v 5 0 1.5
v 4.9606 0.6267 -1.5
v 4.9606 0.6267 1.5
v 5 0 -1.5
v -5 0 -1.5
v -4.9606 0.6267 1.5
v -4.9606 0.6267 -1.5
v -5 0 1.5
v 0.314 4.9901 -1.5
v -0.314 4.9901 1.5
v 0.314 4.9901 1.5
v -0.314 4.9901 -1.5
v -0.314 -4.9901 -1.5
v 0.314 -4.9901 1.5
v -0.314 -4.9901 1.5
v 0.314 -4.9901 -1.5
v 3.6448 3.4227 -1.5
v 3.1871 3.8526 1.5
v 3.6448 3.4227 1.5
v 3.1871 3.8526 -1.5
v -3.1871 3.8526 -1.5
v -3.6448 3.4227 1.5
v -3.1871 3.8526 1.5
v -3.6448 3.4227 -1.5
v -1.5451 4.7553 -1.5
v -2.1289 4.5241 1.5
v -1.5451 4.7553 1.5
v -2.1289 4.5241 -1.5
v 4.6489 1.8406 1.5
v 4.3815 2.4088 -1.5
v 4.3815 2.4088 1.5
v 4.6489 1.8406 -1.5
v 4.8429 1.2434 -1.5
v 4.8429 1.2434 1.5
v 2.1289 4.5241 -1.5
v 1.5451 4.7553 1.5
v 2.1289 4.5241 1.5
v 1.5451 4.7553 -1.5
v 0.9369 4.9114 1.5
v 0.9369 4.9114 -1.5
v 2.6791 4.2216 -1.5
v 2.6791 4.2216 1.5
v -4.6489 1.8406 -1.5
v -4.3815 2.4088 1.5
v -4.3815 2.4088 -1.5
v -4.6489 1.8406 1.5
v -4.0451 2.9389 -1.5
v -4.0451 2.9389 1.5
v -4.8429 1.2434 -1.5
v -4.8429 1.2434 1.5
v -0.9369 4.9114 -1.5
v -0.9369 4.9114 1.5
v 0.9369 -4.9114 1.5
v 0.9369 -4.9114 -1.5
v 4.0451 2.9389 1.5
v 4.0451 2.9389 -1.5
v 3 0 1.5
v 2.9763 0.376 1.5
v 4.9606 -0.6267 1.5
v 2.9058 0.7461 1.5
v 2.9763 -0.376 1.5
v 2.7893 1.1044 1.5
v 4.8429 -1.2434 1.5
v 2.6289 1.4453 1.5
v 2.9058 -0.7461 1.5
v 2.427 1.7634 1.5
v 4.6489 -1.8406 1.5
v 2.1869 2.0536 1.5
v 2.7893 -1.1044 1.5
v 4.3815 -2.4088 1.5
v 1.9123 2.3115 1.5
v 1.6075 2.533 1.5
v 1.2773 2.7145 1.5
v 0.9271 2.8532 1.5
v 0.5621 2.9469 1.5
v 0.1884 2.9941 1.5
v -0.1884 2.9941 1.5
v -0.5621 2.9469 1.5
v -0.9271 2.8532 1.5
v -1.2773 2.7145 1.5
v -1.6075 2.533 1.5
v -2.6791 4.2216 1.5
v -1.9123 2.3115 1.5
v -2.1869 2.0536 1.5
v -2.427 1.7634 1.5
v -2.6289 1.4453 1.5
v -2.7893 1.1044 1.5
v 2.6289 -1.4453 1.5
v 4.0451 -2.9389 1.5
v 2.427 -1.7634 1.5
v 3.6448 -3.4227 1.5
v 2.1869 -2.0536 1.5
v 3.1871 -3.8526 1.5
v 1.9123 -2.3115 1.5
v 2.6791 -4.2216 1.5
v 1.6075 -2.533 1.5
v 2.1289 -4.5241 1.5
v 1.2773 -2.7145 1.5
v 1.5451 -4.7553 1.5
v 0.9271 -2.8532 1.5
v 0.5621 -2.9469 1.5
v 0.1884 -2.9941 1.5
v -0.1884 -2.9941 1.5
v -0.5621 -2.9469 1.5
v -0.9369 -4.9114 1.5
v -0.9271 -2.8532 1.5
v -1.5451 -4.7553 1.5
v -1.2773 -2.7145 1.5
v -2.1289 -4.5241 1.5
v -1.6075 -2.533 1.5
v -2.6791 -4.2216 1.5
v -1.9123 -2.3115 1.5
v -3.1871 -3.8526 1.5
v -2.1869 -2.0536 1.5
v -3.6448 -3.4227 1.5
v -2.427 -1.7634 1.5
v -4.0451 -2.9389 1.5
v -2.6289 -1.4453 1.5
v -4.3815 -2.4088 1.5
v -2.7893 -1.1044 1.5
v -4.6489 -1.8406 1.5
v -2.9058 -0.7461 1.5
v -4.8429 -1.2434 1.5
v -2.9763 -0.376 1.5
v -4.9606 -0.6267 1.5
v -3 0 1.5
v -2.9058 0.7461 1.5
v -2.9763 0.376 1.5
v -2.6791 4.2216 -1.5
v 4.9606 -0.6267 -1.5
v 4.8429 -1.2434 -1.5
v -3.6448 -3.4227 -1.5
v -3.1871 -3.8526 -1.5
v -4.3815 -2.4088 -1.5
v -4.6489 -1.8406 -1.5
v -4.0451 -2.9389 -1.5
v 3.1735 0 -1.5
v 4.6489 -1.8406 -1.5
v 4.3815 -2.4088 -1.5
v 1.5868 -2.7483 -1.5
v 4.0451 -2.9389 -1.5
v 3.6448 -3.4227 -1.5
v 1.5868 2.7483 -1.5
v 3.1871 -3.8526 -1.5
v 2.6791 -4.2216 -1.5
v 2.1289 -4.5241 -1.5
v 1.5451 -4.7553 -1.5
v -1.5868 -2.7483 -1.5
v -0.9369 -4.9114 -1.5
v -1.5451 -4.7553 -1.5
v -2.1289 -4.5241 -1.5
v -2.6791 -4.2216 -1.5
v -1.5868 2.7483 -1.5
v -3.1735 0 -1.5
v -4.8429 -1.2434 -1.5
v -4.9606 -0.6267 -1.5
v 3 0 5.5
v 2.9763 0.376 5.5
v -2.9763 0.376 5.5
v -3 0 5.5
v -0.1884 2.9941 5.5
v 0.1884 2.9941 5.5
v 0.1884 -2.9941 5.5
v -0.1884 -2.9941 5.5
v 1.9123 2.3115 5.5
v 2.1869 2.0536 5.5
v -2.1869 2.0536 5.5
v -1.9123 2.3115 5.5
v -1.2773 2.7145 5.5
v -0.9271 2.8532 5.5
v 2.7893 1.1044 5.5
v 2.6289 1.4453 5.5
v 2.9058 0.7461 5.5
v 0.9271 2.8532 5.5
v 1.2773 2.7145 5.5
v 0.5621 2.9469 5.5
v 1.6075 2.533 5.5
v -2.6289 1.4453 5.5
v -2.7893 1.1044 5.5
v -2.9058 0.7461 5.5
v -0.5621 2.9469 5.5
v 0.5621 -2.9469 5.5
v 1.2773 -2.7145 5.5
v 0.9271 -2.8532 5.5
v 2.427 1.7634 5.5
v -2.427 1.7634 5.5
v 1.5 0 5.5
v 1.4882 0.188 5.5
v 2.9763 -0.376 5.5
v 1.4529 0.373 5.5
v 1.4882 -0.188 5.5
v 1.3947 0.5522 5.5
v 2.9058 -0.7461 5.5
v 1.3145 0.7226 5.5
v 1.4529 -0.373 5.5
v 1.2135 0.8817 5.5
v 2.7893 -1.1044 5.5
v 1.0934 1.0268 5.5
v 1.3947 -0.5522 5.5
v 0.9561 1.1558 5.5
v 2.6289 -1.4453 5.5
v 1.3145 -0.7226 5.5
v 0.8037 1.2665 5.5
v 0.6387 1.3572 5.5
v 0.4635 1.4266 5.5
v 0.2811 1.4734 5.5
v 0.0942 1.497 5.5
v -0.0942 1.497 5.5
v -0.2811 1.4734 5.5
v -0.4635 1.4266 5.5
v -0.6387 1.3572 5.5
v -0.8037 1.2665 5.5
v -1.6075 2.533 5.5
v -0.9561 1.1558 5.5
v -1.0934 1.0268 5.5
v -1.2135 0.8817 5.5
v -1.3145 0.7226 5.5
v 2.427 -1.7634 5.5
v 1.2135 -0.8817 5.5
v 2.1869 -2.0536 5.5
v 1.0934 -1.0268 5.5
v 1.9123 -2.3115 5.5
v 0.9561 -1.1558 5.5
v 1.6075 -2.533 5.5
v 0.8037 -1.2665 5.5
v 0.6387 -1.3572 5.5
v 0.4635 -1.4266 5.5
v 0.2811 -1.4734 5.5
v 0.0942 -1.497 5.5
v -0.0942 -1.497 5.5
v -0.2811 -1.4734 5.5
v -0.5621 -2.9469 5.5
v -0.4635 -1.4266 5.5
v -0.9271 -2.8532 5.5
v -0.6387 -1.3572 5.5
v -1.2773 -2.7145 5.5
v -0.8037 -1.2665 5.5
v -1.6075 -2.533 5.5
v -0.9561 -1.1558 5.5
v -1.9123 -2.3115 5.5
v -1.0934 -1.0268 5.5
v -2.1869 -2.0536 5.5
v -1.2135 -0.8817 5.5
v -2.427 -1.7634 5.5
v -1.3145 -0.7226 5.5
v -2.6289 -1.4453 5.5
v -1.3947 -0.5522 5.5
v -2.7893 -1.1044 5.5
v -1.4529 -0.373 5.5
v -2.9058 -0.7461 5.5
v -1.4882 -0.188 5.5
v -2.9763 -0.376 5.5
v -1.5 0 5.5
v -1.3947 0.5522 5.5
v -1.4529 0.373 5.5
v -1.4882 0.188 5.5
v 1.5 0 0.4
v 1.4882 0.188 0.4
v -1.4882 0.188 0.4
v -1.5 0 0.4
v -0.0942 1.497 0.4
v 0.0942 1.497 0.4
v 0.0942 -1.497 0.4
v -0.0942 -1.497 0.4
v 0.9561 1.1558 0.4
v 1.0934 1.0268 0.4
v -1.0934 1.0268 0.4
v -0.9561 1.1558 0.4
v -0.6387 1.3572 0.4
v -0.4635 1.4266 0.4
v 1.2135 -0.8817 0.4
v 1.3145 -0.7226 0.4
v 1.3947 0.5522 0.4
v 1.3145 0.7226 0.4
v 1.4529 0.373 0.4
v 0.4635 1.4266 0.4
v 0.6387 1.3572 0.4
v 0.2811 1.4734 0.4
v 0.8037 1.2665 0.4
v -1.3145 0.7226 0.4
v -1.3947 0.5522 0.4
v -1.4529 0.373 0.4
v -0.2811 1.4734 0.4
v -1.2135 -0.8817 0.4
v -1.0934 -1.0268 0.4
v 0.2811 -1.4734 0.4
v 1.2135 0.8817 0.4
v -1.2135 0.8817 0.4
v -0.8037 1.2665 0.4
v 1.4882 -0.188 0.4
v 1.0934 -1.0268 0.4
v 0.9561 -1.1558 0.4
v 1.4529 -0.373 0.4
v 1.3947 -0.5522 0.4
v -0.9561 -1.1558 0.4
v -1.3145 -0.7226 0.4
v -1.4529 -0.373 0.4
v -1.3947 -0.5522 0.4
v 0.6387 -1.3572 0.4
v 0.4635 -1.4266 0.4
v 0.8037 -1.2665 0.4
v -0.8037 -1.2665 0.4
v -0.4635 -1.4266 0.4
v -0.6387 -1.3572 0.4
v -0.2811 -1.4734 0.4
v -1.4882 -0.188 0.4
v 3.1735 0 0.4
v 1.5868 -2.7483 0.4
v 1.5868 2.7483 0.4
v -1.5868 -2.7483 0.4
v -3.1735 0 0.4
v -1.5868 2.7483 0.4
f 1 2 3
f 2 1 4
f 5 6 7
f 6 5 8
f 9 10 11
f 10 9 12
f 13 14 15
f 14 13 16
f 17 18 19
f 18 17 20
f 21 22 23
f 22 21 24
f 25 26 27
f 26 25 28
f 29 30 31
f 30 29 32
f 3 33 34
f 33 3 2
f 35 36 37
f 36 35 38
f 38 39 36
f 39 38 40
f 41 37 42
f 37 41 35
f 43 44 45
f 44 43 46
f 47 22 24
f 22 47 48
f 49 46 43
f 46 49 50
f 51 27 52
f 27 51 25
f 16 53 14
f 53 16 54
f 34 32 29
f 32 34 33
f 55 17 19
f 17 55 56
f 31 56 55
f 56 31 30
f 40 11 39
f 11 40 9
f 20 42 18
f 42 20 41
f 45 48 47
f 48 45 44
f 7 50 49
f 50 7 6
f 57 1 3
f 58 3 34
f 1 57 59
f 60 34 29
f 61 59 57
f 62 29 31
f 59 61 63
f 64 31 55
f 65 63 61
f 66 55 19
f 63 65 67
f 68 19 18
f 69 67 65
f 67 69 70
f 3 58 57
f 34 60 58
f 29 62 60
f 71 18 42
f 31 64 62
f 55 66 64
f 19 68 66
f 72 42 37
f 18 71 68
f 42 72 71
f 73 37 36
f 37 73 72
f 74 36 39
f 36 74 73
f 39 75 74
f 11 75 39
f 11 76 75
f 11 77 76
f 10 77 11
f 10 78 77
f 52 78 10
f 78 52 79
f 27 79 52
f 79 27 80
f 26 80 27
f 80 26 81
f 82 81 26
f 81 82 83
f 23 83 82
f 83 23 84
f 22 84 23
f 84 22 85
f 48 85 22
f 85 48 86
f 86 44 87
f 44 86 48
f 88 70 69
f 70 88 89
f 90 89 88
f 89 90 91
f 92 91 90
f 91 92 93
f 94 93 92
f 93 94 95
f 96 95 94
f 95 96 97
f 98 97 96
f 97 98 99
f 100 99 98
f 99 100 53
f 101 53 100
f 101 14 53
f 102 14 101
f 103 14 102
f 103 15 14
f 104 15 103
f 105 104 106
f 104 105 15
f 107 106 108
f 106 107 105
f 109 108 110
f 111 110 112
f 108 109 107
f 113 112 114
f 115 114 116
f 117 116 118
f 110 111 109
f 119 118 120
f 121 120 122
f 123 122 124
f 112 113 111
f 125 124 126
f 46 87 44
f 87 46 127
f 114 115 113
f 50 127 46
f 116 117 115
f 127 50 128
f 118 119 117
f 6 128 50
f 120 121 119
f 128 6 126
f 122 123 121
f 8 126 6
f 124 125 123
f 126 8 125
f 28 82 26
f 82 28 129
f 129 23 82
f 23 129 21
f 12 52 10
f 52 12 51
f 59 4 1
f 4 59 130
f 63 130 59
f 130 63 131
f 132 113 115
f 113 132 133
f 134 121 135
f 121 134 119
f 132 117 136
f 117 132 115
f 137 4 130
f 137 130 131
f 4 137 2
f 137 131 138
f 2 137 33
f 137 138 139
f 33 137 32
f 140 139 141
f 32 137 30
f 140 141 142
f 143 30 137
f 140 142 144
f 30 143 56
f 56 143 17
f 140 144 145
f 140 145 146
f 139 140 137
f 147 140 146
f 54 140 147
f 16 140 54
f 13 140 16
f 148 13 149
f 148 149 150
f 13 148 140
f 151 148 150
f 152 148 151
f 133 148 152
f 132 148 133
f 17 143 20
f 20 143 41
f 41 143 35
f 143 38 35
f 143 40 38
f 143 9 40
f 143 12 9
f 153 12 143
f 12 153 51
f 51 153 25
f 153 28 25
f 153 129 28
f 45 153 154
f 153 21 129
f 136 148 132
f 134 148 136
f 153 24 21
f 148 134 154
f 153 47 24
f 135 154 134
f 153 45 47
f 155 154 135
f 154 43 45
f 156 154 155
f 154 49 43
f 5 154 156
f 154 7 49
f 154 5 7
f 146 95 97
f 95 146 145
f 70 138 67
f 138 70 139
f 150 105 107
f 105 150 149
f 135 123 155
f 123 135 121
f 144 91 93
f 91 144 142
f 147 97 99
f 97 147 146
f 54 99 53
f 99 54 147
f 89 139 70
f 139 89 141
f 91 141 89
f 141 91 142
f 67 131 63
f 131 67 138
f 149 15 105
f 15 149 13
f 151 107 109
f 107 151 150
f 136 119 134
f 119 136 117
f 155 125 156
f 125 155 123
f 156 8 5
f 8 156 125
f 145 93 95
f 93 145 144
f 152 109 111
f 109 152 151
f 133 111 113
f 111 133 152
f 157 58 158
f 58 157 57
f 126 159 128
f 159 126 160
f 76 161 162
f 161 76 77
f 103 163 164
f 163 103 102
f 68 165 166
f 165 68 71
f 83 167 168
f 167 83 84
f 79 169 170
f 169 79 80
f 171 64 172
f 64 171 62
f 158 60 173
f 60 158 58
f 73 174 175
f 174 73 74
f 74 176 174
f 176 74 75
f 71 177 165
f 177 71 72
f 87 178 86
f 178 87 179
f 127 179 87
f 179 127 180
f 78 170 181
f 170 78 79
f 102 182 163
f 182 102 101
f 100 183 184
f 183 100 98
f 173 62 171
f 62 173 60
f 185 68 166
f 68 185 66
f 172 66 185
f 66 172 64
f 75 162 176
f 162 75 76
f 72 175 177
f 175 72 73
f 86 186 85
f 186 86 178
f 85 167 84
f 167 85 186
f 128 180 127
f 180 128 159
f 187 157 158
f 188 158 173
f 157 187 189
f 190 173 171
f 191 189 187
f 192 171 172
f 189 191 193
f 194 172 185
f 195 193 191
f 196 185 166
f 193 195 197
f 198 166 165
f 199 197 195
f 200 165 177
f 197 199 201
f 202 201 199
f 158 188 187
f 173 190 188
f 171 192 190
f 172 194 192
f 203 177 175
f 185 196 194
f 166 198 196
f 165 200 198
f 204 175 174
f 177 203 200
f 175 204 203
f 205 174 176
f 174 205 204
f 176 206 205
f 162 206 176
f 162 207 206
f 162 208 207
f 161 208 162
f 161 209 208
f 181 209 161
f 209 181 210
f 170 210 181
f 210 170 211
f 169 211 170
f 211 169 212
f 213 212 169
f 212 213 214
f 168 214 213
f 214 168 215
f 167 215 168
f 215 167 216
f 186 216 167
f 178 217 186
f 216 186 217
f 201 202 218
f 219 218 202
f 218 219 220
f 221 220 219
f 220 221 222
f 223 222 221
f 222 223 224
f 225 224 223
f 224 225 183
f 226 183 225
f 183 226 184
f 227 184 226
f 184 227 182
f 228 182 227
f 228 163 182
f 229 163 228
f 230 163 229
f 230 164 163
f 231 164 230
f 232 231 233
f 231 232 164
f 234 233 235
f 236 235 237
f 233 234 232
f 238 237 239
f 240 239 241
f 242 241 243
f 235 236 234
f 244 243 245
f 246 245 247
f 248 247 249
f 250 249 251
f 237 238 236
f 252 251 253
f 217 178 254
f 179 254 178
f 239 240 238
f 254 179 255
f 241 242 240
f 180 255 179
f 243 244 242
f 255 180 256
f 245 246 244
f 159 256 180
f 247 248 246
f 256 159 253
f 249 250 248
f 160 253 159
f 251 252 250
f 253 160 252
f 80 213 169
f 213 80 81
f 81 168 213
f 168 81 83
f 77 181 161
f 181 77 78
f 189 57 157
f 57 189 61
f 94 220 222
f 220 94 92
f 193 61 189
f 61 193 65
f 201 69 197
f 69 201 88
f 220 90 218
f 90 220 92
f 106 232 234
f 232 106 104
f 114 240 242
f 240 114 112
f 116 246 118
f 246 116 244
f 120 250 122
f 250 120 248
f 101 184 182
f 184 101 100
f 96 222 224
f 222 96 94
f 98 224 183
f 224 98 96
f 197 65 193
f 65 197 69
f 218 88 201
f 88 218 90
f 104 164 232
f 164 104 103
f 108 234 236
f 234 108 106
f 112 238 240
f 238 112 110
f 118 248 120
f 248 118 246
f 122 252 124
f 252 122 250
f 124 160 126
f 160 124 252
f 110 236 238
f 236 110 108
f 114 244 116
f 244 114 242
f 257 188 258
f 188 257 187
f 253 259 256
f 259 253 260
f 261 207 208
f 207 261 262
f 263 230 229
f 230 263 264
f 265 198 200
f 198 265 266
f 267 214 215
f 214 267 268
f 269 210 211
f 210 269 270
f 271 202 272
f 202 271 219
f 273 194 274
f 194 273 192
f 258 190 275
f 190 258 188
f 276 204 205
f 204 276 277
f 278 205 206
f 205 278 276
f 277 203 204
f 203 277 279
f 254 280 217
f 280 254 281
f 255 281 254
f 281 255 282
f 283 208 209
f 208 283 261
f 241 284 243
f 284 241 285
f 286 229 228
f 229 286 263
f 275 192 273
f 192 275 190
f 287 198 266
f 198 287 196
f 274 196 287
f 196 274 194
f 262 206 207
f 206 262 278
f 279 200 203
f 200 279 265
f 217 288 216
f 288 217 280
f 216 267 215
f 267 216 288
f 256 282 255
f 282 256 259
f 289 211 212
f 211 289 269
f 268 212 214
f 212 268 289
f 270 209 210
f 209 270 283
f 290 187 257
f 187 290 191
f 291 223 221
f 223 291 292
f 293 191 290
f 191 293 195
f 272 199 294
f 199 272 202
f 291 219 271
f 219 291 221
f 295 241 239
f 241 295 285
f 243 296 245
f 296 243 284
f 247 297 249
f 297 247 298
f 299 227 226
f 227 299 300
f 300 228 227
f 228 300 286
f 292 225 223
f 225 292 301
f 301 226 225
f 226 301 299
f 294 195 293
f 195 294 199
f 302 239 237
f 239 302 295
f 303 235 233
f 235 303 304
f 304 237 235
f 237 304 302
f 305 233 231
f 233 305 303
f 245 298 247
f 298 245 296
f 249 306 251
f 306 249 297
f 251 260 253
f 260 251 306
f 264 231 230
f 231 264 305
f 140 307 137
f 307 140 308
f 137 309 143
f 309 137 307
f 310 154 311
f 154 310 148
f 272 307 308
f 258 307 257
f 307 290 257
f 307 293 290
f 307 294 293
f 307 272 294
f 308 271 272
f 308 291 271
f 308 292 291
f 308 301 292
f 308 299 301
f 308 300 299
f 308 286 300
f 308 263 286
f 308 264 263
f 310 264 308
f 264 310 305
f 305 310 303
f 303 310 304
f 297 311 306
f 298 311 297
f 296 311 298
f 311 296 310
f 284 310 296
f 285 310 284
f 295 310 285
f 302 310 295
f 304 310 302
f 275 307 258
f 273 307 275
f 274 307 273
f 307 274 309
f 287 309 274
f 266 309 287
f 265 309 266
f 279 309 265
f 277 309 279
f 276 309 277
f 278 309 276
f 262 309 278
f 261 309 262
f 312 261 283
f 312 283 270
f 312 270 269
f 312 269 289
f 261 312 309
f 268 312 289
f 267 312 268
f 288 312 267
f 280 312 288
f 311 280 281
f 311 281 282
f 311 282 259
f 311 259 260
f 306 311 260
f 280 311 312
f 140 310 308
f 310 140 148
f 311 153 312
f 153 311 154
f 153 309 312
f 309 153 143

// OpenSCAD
$fn = 50;


difference() {
	union() {
		translate(v = [0, 0, -1.5000000000]) {
			rotate(a = [0, 0, 0]) {
				cylinder(h = 3, r = 5.0000000000);
			}
		}
		translate(v = [0, 0, -1.5000000000]) {
			rotate(a = [0, 0, 0]) {
				cylinder(h = 7, r = 3.0000000000);
			}
		}
	}
	union() {
		translate(v = [0, 0, -125.0000000000]) {
			rotate(a = [0, 0, 0]) {
				cylinder(h = 250, r = 1.5000000000);
			}
		}
		translate(v = [0, 0, -2.1000000000]) {
			rotate(a = [0, 0, 0]) {
				#translate(v = [0, 0, 0]) {
					rotate(a = [0, 0, 0]) {
						linear_extrude(height = 2.5000000000) {
							polygon(points = [[3.1735000000, 0.0000000000], [1.5867500000, 2.7483316189], [-1.5867500000, 2.7483316189], [-3.1735000000, 0.0000000000], [-1.5867500000, -2.7483316189], [1.5867500000, -2.7483316189]]);
						}
					}
				}
			}
		}
	}
}
